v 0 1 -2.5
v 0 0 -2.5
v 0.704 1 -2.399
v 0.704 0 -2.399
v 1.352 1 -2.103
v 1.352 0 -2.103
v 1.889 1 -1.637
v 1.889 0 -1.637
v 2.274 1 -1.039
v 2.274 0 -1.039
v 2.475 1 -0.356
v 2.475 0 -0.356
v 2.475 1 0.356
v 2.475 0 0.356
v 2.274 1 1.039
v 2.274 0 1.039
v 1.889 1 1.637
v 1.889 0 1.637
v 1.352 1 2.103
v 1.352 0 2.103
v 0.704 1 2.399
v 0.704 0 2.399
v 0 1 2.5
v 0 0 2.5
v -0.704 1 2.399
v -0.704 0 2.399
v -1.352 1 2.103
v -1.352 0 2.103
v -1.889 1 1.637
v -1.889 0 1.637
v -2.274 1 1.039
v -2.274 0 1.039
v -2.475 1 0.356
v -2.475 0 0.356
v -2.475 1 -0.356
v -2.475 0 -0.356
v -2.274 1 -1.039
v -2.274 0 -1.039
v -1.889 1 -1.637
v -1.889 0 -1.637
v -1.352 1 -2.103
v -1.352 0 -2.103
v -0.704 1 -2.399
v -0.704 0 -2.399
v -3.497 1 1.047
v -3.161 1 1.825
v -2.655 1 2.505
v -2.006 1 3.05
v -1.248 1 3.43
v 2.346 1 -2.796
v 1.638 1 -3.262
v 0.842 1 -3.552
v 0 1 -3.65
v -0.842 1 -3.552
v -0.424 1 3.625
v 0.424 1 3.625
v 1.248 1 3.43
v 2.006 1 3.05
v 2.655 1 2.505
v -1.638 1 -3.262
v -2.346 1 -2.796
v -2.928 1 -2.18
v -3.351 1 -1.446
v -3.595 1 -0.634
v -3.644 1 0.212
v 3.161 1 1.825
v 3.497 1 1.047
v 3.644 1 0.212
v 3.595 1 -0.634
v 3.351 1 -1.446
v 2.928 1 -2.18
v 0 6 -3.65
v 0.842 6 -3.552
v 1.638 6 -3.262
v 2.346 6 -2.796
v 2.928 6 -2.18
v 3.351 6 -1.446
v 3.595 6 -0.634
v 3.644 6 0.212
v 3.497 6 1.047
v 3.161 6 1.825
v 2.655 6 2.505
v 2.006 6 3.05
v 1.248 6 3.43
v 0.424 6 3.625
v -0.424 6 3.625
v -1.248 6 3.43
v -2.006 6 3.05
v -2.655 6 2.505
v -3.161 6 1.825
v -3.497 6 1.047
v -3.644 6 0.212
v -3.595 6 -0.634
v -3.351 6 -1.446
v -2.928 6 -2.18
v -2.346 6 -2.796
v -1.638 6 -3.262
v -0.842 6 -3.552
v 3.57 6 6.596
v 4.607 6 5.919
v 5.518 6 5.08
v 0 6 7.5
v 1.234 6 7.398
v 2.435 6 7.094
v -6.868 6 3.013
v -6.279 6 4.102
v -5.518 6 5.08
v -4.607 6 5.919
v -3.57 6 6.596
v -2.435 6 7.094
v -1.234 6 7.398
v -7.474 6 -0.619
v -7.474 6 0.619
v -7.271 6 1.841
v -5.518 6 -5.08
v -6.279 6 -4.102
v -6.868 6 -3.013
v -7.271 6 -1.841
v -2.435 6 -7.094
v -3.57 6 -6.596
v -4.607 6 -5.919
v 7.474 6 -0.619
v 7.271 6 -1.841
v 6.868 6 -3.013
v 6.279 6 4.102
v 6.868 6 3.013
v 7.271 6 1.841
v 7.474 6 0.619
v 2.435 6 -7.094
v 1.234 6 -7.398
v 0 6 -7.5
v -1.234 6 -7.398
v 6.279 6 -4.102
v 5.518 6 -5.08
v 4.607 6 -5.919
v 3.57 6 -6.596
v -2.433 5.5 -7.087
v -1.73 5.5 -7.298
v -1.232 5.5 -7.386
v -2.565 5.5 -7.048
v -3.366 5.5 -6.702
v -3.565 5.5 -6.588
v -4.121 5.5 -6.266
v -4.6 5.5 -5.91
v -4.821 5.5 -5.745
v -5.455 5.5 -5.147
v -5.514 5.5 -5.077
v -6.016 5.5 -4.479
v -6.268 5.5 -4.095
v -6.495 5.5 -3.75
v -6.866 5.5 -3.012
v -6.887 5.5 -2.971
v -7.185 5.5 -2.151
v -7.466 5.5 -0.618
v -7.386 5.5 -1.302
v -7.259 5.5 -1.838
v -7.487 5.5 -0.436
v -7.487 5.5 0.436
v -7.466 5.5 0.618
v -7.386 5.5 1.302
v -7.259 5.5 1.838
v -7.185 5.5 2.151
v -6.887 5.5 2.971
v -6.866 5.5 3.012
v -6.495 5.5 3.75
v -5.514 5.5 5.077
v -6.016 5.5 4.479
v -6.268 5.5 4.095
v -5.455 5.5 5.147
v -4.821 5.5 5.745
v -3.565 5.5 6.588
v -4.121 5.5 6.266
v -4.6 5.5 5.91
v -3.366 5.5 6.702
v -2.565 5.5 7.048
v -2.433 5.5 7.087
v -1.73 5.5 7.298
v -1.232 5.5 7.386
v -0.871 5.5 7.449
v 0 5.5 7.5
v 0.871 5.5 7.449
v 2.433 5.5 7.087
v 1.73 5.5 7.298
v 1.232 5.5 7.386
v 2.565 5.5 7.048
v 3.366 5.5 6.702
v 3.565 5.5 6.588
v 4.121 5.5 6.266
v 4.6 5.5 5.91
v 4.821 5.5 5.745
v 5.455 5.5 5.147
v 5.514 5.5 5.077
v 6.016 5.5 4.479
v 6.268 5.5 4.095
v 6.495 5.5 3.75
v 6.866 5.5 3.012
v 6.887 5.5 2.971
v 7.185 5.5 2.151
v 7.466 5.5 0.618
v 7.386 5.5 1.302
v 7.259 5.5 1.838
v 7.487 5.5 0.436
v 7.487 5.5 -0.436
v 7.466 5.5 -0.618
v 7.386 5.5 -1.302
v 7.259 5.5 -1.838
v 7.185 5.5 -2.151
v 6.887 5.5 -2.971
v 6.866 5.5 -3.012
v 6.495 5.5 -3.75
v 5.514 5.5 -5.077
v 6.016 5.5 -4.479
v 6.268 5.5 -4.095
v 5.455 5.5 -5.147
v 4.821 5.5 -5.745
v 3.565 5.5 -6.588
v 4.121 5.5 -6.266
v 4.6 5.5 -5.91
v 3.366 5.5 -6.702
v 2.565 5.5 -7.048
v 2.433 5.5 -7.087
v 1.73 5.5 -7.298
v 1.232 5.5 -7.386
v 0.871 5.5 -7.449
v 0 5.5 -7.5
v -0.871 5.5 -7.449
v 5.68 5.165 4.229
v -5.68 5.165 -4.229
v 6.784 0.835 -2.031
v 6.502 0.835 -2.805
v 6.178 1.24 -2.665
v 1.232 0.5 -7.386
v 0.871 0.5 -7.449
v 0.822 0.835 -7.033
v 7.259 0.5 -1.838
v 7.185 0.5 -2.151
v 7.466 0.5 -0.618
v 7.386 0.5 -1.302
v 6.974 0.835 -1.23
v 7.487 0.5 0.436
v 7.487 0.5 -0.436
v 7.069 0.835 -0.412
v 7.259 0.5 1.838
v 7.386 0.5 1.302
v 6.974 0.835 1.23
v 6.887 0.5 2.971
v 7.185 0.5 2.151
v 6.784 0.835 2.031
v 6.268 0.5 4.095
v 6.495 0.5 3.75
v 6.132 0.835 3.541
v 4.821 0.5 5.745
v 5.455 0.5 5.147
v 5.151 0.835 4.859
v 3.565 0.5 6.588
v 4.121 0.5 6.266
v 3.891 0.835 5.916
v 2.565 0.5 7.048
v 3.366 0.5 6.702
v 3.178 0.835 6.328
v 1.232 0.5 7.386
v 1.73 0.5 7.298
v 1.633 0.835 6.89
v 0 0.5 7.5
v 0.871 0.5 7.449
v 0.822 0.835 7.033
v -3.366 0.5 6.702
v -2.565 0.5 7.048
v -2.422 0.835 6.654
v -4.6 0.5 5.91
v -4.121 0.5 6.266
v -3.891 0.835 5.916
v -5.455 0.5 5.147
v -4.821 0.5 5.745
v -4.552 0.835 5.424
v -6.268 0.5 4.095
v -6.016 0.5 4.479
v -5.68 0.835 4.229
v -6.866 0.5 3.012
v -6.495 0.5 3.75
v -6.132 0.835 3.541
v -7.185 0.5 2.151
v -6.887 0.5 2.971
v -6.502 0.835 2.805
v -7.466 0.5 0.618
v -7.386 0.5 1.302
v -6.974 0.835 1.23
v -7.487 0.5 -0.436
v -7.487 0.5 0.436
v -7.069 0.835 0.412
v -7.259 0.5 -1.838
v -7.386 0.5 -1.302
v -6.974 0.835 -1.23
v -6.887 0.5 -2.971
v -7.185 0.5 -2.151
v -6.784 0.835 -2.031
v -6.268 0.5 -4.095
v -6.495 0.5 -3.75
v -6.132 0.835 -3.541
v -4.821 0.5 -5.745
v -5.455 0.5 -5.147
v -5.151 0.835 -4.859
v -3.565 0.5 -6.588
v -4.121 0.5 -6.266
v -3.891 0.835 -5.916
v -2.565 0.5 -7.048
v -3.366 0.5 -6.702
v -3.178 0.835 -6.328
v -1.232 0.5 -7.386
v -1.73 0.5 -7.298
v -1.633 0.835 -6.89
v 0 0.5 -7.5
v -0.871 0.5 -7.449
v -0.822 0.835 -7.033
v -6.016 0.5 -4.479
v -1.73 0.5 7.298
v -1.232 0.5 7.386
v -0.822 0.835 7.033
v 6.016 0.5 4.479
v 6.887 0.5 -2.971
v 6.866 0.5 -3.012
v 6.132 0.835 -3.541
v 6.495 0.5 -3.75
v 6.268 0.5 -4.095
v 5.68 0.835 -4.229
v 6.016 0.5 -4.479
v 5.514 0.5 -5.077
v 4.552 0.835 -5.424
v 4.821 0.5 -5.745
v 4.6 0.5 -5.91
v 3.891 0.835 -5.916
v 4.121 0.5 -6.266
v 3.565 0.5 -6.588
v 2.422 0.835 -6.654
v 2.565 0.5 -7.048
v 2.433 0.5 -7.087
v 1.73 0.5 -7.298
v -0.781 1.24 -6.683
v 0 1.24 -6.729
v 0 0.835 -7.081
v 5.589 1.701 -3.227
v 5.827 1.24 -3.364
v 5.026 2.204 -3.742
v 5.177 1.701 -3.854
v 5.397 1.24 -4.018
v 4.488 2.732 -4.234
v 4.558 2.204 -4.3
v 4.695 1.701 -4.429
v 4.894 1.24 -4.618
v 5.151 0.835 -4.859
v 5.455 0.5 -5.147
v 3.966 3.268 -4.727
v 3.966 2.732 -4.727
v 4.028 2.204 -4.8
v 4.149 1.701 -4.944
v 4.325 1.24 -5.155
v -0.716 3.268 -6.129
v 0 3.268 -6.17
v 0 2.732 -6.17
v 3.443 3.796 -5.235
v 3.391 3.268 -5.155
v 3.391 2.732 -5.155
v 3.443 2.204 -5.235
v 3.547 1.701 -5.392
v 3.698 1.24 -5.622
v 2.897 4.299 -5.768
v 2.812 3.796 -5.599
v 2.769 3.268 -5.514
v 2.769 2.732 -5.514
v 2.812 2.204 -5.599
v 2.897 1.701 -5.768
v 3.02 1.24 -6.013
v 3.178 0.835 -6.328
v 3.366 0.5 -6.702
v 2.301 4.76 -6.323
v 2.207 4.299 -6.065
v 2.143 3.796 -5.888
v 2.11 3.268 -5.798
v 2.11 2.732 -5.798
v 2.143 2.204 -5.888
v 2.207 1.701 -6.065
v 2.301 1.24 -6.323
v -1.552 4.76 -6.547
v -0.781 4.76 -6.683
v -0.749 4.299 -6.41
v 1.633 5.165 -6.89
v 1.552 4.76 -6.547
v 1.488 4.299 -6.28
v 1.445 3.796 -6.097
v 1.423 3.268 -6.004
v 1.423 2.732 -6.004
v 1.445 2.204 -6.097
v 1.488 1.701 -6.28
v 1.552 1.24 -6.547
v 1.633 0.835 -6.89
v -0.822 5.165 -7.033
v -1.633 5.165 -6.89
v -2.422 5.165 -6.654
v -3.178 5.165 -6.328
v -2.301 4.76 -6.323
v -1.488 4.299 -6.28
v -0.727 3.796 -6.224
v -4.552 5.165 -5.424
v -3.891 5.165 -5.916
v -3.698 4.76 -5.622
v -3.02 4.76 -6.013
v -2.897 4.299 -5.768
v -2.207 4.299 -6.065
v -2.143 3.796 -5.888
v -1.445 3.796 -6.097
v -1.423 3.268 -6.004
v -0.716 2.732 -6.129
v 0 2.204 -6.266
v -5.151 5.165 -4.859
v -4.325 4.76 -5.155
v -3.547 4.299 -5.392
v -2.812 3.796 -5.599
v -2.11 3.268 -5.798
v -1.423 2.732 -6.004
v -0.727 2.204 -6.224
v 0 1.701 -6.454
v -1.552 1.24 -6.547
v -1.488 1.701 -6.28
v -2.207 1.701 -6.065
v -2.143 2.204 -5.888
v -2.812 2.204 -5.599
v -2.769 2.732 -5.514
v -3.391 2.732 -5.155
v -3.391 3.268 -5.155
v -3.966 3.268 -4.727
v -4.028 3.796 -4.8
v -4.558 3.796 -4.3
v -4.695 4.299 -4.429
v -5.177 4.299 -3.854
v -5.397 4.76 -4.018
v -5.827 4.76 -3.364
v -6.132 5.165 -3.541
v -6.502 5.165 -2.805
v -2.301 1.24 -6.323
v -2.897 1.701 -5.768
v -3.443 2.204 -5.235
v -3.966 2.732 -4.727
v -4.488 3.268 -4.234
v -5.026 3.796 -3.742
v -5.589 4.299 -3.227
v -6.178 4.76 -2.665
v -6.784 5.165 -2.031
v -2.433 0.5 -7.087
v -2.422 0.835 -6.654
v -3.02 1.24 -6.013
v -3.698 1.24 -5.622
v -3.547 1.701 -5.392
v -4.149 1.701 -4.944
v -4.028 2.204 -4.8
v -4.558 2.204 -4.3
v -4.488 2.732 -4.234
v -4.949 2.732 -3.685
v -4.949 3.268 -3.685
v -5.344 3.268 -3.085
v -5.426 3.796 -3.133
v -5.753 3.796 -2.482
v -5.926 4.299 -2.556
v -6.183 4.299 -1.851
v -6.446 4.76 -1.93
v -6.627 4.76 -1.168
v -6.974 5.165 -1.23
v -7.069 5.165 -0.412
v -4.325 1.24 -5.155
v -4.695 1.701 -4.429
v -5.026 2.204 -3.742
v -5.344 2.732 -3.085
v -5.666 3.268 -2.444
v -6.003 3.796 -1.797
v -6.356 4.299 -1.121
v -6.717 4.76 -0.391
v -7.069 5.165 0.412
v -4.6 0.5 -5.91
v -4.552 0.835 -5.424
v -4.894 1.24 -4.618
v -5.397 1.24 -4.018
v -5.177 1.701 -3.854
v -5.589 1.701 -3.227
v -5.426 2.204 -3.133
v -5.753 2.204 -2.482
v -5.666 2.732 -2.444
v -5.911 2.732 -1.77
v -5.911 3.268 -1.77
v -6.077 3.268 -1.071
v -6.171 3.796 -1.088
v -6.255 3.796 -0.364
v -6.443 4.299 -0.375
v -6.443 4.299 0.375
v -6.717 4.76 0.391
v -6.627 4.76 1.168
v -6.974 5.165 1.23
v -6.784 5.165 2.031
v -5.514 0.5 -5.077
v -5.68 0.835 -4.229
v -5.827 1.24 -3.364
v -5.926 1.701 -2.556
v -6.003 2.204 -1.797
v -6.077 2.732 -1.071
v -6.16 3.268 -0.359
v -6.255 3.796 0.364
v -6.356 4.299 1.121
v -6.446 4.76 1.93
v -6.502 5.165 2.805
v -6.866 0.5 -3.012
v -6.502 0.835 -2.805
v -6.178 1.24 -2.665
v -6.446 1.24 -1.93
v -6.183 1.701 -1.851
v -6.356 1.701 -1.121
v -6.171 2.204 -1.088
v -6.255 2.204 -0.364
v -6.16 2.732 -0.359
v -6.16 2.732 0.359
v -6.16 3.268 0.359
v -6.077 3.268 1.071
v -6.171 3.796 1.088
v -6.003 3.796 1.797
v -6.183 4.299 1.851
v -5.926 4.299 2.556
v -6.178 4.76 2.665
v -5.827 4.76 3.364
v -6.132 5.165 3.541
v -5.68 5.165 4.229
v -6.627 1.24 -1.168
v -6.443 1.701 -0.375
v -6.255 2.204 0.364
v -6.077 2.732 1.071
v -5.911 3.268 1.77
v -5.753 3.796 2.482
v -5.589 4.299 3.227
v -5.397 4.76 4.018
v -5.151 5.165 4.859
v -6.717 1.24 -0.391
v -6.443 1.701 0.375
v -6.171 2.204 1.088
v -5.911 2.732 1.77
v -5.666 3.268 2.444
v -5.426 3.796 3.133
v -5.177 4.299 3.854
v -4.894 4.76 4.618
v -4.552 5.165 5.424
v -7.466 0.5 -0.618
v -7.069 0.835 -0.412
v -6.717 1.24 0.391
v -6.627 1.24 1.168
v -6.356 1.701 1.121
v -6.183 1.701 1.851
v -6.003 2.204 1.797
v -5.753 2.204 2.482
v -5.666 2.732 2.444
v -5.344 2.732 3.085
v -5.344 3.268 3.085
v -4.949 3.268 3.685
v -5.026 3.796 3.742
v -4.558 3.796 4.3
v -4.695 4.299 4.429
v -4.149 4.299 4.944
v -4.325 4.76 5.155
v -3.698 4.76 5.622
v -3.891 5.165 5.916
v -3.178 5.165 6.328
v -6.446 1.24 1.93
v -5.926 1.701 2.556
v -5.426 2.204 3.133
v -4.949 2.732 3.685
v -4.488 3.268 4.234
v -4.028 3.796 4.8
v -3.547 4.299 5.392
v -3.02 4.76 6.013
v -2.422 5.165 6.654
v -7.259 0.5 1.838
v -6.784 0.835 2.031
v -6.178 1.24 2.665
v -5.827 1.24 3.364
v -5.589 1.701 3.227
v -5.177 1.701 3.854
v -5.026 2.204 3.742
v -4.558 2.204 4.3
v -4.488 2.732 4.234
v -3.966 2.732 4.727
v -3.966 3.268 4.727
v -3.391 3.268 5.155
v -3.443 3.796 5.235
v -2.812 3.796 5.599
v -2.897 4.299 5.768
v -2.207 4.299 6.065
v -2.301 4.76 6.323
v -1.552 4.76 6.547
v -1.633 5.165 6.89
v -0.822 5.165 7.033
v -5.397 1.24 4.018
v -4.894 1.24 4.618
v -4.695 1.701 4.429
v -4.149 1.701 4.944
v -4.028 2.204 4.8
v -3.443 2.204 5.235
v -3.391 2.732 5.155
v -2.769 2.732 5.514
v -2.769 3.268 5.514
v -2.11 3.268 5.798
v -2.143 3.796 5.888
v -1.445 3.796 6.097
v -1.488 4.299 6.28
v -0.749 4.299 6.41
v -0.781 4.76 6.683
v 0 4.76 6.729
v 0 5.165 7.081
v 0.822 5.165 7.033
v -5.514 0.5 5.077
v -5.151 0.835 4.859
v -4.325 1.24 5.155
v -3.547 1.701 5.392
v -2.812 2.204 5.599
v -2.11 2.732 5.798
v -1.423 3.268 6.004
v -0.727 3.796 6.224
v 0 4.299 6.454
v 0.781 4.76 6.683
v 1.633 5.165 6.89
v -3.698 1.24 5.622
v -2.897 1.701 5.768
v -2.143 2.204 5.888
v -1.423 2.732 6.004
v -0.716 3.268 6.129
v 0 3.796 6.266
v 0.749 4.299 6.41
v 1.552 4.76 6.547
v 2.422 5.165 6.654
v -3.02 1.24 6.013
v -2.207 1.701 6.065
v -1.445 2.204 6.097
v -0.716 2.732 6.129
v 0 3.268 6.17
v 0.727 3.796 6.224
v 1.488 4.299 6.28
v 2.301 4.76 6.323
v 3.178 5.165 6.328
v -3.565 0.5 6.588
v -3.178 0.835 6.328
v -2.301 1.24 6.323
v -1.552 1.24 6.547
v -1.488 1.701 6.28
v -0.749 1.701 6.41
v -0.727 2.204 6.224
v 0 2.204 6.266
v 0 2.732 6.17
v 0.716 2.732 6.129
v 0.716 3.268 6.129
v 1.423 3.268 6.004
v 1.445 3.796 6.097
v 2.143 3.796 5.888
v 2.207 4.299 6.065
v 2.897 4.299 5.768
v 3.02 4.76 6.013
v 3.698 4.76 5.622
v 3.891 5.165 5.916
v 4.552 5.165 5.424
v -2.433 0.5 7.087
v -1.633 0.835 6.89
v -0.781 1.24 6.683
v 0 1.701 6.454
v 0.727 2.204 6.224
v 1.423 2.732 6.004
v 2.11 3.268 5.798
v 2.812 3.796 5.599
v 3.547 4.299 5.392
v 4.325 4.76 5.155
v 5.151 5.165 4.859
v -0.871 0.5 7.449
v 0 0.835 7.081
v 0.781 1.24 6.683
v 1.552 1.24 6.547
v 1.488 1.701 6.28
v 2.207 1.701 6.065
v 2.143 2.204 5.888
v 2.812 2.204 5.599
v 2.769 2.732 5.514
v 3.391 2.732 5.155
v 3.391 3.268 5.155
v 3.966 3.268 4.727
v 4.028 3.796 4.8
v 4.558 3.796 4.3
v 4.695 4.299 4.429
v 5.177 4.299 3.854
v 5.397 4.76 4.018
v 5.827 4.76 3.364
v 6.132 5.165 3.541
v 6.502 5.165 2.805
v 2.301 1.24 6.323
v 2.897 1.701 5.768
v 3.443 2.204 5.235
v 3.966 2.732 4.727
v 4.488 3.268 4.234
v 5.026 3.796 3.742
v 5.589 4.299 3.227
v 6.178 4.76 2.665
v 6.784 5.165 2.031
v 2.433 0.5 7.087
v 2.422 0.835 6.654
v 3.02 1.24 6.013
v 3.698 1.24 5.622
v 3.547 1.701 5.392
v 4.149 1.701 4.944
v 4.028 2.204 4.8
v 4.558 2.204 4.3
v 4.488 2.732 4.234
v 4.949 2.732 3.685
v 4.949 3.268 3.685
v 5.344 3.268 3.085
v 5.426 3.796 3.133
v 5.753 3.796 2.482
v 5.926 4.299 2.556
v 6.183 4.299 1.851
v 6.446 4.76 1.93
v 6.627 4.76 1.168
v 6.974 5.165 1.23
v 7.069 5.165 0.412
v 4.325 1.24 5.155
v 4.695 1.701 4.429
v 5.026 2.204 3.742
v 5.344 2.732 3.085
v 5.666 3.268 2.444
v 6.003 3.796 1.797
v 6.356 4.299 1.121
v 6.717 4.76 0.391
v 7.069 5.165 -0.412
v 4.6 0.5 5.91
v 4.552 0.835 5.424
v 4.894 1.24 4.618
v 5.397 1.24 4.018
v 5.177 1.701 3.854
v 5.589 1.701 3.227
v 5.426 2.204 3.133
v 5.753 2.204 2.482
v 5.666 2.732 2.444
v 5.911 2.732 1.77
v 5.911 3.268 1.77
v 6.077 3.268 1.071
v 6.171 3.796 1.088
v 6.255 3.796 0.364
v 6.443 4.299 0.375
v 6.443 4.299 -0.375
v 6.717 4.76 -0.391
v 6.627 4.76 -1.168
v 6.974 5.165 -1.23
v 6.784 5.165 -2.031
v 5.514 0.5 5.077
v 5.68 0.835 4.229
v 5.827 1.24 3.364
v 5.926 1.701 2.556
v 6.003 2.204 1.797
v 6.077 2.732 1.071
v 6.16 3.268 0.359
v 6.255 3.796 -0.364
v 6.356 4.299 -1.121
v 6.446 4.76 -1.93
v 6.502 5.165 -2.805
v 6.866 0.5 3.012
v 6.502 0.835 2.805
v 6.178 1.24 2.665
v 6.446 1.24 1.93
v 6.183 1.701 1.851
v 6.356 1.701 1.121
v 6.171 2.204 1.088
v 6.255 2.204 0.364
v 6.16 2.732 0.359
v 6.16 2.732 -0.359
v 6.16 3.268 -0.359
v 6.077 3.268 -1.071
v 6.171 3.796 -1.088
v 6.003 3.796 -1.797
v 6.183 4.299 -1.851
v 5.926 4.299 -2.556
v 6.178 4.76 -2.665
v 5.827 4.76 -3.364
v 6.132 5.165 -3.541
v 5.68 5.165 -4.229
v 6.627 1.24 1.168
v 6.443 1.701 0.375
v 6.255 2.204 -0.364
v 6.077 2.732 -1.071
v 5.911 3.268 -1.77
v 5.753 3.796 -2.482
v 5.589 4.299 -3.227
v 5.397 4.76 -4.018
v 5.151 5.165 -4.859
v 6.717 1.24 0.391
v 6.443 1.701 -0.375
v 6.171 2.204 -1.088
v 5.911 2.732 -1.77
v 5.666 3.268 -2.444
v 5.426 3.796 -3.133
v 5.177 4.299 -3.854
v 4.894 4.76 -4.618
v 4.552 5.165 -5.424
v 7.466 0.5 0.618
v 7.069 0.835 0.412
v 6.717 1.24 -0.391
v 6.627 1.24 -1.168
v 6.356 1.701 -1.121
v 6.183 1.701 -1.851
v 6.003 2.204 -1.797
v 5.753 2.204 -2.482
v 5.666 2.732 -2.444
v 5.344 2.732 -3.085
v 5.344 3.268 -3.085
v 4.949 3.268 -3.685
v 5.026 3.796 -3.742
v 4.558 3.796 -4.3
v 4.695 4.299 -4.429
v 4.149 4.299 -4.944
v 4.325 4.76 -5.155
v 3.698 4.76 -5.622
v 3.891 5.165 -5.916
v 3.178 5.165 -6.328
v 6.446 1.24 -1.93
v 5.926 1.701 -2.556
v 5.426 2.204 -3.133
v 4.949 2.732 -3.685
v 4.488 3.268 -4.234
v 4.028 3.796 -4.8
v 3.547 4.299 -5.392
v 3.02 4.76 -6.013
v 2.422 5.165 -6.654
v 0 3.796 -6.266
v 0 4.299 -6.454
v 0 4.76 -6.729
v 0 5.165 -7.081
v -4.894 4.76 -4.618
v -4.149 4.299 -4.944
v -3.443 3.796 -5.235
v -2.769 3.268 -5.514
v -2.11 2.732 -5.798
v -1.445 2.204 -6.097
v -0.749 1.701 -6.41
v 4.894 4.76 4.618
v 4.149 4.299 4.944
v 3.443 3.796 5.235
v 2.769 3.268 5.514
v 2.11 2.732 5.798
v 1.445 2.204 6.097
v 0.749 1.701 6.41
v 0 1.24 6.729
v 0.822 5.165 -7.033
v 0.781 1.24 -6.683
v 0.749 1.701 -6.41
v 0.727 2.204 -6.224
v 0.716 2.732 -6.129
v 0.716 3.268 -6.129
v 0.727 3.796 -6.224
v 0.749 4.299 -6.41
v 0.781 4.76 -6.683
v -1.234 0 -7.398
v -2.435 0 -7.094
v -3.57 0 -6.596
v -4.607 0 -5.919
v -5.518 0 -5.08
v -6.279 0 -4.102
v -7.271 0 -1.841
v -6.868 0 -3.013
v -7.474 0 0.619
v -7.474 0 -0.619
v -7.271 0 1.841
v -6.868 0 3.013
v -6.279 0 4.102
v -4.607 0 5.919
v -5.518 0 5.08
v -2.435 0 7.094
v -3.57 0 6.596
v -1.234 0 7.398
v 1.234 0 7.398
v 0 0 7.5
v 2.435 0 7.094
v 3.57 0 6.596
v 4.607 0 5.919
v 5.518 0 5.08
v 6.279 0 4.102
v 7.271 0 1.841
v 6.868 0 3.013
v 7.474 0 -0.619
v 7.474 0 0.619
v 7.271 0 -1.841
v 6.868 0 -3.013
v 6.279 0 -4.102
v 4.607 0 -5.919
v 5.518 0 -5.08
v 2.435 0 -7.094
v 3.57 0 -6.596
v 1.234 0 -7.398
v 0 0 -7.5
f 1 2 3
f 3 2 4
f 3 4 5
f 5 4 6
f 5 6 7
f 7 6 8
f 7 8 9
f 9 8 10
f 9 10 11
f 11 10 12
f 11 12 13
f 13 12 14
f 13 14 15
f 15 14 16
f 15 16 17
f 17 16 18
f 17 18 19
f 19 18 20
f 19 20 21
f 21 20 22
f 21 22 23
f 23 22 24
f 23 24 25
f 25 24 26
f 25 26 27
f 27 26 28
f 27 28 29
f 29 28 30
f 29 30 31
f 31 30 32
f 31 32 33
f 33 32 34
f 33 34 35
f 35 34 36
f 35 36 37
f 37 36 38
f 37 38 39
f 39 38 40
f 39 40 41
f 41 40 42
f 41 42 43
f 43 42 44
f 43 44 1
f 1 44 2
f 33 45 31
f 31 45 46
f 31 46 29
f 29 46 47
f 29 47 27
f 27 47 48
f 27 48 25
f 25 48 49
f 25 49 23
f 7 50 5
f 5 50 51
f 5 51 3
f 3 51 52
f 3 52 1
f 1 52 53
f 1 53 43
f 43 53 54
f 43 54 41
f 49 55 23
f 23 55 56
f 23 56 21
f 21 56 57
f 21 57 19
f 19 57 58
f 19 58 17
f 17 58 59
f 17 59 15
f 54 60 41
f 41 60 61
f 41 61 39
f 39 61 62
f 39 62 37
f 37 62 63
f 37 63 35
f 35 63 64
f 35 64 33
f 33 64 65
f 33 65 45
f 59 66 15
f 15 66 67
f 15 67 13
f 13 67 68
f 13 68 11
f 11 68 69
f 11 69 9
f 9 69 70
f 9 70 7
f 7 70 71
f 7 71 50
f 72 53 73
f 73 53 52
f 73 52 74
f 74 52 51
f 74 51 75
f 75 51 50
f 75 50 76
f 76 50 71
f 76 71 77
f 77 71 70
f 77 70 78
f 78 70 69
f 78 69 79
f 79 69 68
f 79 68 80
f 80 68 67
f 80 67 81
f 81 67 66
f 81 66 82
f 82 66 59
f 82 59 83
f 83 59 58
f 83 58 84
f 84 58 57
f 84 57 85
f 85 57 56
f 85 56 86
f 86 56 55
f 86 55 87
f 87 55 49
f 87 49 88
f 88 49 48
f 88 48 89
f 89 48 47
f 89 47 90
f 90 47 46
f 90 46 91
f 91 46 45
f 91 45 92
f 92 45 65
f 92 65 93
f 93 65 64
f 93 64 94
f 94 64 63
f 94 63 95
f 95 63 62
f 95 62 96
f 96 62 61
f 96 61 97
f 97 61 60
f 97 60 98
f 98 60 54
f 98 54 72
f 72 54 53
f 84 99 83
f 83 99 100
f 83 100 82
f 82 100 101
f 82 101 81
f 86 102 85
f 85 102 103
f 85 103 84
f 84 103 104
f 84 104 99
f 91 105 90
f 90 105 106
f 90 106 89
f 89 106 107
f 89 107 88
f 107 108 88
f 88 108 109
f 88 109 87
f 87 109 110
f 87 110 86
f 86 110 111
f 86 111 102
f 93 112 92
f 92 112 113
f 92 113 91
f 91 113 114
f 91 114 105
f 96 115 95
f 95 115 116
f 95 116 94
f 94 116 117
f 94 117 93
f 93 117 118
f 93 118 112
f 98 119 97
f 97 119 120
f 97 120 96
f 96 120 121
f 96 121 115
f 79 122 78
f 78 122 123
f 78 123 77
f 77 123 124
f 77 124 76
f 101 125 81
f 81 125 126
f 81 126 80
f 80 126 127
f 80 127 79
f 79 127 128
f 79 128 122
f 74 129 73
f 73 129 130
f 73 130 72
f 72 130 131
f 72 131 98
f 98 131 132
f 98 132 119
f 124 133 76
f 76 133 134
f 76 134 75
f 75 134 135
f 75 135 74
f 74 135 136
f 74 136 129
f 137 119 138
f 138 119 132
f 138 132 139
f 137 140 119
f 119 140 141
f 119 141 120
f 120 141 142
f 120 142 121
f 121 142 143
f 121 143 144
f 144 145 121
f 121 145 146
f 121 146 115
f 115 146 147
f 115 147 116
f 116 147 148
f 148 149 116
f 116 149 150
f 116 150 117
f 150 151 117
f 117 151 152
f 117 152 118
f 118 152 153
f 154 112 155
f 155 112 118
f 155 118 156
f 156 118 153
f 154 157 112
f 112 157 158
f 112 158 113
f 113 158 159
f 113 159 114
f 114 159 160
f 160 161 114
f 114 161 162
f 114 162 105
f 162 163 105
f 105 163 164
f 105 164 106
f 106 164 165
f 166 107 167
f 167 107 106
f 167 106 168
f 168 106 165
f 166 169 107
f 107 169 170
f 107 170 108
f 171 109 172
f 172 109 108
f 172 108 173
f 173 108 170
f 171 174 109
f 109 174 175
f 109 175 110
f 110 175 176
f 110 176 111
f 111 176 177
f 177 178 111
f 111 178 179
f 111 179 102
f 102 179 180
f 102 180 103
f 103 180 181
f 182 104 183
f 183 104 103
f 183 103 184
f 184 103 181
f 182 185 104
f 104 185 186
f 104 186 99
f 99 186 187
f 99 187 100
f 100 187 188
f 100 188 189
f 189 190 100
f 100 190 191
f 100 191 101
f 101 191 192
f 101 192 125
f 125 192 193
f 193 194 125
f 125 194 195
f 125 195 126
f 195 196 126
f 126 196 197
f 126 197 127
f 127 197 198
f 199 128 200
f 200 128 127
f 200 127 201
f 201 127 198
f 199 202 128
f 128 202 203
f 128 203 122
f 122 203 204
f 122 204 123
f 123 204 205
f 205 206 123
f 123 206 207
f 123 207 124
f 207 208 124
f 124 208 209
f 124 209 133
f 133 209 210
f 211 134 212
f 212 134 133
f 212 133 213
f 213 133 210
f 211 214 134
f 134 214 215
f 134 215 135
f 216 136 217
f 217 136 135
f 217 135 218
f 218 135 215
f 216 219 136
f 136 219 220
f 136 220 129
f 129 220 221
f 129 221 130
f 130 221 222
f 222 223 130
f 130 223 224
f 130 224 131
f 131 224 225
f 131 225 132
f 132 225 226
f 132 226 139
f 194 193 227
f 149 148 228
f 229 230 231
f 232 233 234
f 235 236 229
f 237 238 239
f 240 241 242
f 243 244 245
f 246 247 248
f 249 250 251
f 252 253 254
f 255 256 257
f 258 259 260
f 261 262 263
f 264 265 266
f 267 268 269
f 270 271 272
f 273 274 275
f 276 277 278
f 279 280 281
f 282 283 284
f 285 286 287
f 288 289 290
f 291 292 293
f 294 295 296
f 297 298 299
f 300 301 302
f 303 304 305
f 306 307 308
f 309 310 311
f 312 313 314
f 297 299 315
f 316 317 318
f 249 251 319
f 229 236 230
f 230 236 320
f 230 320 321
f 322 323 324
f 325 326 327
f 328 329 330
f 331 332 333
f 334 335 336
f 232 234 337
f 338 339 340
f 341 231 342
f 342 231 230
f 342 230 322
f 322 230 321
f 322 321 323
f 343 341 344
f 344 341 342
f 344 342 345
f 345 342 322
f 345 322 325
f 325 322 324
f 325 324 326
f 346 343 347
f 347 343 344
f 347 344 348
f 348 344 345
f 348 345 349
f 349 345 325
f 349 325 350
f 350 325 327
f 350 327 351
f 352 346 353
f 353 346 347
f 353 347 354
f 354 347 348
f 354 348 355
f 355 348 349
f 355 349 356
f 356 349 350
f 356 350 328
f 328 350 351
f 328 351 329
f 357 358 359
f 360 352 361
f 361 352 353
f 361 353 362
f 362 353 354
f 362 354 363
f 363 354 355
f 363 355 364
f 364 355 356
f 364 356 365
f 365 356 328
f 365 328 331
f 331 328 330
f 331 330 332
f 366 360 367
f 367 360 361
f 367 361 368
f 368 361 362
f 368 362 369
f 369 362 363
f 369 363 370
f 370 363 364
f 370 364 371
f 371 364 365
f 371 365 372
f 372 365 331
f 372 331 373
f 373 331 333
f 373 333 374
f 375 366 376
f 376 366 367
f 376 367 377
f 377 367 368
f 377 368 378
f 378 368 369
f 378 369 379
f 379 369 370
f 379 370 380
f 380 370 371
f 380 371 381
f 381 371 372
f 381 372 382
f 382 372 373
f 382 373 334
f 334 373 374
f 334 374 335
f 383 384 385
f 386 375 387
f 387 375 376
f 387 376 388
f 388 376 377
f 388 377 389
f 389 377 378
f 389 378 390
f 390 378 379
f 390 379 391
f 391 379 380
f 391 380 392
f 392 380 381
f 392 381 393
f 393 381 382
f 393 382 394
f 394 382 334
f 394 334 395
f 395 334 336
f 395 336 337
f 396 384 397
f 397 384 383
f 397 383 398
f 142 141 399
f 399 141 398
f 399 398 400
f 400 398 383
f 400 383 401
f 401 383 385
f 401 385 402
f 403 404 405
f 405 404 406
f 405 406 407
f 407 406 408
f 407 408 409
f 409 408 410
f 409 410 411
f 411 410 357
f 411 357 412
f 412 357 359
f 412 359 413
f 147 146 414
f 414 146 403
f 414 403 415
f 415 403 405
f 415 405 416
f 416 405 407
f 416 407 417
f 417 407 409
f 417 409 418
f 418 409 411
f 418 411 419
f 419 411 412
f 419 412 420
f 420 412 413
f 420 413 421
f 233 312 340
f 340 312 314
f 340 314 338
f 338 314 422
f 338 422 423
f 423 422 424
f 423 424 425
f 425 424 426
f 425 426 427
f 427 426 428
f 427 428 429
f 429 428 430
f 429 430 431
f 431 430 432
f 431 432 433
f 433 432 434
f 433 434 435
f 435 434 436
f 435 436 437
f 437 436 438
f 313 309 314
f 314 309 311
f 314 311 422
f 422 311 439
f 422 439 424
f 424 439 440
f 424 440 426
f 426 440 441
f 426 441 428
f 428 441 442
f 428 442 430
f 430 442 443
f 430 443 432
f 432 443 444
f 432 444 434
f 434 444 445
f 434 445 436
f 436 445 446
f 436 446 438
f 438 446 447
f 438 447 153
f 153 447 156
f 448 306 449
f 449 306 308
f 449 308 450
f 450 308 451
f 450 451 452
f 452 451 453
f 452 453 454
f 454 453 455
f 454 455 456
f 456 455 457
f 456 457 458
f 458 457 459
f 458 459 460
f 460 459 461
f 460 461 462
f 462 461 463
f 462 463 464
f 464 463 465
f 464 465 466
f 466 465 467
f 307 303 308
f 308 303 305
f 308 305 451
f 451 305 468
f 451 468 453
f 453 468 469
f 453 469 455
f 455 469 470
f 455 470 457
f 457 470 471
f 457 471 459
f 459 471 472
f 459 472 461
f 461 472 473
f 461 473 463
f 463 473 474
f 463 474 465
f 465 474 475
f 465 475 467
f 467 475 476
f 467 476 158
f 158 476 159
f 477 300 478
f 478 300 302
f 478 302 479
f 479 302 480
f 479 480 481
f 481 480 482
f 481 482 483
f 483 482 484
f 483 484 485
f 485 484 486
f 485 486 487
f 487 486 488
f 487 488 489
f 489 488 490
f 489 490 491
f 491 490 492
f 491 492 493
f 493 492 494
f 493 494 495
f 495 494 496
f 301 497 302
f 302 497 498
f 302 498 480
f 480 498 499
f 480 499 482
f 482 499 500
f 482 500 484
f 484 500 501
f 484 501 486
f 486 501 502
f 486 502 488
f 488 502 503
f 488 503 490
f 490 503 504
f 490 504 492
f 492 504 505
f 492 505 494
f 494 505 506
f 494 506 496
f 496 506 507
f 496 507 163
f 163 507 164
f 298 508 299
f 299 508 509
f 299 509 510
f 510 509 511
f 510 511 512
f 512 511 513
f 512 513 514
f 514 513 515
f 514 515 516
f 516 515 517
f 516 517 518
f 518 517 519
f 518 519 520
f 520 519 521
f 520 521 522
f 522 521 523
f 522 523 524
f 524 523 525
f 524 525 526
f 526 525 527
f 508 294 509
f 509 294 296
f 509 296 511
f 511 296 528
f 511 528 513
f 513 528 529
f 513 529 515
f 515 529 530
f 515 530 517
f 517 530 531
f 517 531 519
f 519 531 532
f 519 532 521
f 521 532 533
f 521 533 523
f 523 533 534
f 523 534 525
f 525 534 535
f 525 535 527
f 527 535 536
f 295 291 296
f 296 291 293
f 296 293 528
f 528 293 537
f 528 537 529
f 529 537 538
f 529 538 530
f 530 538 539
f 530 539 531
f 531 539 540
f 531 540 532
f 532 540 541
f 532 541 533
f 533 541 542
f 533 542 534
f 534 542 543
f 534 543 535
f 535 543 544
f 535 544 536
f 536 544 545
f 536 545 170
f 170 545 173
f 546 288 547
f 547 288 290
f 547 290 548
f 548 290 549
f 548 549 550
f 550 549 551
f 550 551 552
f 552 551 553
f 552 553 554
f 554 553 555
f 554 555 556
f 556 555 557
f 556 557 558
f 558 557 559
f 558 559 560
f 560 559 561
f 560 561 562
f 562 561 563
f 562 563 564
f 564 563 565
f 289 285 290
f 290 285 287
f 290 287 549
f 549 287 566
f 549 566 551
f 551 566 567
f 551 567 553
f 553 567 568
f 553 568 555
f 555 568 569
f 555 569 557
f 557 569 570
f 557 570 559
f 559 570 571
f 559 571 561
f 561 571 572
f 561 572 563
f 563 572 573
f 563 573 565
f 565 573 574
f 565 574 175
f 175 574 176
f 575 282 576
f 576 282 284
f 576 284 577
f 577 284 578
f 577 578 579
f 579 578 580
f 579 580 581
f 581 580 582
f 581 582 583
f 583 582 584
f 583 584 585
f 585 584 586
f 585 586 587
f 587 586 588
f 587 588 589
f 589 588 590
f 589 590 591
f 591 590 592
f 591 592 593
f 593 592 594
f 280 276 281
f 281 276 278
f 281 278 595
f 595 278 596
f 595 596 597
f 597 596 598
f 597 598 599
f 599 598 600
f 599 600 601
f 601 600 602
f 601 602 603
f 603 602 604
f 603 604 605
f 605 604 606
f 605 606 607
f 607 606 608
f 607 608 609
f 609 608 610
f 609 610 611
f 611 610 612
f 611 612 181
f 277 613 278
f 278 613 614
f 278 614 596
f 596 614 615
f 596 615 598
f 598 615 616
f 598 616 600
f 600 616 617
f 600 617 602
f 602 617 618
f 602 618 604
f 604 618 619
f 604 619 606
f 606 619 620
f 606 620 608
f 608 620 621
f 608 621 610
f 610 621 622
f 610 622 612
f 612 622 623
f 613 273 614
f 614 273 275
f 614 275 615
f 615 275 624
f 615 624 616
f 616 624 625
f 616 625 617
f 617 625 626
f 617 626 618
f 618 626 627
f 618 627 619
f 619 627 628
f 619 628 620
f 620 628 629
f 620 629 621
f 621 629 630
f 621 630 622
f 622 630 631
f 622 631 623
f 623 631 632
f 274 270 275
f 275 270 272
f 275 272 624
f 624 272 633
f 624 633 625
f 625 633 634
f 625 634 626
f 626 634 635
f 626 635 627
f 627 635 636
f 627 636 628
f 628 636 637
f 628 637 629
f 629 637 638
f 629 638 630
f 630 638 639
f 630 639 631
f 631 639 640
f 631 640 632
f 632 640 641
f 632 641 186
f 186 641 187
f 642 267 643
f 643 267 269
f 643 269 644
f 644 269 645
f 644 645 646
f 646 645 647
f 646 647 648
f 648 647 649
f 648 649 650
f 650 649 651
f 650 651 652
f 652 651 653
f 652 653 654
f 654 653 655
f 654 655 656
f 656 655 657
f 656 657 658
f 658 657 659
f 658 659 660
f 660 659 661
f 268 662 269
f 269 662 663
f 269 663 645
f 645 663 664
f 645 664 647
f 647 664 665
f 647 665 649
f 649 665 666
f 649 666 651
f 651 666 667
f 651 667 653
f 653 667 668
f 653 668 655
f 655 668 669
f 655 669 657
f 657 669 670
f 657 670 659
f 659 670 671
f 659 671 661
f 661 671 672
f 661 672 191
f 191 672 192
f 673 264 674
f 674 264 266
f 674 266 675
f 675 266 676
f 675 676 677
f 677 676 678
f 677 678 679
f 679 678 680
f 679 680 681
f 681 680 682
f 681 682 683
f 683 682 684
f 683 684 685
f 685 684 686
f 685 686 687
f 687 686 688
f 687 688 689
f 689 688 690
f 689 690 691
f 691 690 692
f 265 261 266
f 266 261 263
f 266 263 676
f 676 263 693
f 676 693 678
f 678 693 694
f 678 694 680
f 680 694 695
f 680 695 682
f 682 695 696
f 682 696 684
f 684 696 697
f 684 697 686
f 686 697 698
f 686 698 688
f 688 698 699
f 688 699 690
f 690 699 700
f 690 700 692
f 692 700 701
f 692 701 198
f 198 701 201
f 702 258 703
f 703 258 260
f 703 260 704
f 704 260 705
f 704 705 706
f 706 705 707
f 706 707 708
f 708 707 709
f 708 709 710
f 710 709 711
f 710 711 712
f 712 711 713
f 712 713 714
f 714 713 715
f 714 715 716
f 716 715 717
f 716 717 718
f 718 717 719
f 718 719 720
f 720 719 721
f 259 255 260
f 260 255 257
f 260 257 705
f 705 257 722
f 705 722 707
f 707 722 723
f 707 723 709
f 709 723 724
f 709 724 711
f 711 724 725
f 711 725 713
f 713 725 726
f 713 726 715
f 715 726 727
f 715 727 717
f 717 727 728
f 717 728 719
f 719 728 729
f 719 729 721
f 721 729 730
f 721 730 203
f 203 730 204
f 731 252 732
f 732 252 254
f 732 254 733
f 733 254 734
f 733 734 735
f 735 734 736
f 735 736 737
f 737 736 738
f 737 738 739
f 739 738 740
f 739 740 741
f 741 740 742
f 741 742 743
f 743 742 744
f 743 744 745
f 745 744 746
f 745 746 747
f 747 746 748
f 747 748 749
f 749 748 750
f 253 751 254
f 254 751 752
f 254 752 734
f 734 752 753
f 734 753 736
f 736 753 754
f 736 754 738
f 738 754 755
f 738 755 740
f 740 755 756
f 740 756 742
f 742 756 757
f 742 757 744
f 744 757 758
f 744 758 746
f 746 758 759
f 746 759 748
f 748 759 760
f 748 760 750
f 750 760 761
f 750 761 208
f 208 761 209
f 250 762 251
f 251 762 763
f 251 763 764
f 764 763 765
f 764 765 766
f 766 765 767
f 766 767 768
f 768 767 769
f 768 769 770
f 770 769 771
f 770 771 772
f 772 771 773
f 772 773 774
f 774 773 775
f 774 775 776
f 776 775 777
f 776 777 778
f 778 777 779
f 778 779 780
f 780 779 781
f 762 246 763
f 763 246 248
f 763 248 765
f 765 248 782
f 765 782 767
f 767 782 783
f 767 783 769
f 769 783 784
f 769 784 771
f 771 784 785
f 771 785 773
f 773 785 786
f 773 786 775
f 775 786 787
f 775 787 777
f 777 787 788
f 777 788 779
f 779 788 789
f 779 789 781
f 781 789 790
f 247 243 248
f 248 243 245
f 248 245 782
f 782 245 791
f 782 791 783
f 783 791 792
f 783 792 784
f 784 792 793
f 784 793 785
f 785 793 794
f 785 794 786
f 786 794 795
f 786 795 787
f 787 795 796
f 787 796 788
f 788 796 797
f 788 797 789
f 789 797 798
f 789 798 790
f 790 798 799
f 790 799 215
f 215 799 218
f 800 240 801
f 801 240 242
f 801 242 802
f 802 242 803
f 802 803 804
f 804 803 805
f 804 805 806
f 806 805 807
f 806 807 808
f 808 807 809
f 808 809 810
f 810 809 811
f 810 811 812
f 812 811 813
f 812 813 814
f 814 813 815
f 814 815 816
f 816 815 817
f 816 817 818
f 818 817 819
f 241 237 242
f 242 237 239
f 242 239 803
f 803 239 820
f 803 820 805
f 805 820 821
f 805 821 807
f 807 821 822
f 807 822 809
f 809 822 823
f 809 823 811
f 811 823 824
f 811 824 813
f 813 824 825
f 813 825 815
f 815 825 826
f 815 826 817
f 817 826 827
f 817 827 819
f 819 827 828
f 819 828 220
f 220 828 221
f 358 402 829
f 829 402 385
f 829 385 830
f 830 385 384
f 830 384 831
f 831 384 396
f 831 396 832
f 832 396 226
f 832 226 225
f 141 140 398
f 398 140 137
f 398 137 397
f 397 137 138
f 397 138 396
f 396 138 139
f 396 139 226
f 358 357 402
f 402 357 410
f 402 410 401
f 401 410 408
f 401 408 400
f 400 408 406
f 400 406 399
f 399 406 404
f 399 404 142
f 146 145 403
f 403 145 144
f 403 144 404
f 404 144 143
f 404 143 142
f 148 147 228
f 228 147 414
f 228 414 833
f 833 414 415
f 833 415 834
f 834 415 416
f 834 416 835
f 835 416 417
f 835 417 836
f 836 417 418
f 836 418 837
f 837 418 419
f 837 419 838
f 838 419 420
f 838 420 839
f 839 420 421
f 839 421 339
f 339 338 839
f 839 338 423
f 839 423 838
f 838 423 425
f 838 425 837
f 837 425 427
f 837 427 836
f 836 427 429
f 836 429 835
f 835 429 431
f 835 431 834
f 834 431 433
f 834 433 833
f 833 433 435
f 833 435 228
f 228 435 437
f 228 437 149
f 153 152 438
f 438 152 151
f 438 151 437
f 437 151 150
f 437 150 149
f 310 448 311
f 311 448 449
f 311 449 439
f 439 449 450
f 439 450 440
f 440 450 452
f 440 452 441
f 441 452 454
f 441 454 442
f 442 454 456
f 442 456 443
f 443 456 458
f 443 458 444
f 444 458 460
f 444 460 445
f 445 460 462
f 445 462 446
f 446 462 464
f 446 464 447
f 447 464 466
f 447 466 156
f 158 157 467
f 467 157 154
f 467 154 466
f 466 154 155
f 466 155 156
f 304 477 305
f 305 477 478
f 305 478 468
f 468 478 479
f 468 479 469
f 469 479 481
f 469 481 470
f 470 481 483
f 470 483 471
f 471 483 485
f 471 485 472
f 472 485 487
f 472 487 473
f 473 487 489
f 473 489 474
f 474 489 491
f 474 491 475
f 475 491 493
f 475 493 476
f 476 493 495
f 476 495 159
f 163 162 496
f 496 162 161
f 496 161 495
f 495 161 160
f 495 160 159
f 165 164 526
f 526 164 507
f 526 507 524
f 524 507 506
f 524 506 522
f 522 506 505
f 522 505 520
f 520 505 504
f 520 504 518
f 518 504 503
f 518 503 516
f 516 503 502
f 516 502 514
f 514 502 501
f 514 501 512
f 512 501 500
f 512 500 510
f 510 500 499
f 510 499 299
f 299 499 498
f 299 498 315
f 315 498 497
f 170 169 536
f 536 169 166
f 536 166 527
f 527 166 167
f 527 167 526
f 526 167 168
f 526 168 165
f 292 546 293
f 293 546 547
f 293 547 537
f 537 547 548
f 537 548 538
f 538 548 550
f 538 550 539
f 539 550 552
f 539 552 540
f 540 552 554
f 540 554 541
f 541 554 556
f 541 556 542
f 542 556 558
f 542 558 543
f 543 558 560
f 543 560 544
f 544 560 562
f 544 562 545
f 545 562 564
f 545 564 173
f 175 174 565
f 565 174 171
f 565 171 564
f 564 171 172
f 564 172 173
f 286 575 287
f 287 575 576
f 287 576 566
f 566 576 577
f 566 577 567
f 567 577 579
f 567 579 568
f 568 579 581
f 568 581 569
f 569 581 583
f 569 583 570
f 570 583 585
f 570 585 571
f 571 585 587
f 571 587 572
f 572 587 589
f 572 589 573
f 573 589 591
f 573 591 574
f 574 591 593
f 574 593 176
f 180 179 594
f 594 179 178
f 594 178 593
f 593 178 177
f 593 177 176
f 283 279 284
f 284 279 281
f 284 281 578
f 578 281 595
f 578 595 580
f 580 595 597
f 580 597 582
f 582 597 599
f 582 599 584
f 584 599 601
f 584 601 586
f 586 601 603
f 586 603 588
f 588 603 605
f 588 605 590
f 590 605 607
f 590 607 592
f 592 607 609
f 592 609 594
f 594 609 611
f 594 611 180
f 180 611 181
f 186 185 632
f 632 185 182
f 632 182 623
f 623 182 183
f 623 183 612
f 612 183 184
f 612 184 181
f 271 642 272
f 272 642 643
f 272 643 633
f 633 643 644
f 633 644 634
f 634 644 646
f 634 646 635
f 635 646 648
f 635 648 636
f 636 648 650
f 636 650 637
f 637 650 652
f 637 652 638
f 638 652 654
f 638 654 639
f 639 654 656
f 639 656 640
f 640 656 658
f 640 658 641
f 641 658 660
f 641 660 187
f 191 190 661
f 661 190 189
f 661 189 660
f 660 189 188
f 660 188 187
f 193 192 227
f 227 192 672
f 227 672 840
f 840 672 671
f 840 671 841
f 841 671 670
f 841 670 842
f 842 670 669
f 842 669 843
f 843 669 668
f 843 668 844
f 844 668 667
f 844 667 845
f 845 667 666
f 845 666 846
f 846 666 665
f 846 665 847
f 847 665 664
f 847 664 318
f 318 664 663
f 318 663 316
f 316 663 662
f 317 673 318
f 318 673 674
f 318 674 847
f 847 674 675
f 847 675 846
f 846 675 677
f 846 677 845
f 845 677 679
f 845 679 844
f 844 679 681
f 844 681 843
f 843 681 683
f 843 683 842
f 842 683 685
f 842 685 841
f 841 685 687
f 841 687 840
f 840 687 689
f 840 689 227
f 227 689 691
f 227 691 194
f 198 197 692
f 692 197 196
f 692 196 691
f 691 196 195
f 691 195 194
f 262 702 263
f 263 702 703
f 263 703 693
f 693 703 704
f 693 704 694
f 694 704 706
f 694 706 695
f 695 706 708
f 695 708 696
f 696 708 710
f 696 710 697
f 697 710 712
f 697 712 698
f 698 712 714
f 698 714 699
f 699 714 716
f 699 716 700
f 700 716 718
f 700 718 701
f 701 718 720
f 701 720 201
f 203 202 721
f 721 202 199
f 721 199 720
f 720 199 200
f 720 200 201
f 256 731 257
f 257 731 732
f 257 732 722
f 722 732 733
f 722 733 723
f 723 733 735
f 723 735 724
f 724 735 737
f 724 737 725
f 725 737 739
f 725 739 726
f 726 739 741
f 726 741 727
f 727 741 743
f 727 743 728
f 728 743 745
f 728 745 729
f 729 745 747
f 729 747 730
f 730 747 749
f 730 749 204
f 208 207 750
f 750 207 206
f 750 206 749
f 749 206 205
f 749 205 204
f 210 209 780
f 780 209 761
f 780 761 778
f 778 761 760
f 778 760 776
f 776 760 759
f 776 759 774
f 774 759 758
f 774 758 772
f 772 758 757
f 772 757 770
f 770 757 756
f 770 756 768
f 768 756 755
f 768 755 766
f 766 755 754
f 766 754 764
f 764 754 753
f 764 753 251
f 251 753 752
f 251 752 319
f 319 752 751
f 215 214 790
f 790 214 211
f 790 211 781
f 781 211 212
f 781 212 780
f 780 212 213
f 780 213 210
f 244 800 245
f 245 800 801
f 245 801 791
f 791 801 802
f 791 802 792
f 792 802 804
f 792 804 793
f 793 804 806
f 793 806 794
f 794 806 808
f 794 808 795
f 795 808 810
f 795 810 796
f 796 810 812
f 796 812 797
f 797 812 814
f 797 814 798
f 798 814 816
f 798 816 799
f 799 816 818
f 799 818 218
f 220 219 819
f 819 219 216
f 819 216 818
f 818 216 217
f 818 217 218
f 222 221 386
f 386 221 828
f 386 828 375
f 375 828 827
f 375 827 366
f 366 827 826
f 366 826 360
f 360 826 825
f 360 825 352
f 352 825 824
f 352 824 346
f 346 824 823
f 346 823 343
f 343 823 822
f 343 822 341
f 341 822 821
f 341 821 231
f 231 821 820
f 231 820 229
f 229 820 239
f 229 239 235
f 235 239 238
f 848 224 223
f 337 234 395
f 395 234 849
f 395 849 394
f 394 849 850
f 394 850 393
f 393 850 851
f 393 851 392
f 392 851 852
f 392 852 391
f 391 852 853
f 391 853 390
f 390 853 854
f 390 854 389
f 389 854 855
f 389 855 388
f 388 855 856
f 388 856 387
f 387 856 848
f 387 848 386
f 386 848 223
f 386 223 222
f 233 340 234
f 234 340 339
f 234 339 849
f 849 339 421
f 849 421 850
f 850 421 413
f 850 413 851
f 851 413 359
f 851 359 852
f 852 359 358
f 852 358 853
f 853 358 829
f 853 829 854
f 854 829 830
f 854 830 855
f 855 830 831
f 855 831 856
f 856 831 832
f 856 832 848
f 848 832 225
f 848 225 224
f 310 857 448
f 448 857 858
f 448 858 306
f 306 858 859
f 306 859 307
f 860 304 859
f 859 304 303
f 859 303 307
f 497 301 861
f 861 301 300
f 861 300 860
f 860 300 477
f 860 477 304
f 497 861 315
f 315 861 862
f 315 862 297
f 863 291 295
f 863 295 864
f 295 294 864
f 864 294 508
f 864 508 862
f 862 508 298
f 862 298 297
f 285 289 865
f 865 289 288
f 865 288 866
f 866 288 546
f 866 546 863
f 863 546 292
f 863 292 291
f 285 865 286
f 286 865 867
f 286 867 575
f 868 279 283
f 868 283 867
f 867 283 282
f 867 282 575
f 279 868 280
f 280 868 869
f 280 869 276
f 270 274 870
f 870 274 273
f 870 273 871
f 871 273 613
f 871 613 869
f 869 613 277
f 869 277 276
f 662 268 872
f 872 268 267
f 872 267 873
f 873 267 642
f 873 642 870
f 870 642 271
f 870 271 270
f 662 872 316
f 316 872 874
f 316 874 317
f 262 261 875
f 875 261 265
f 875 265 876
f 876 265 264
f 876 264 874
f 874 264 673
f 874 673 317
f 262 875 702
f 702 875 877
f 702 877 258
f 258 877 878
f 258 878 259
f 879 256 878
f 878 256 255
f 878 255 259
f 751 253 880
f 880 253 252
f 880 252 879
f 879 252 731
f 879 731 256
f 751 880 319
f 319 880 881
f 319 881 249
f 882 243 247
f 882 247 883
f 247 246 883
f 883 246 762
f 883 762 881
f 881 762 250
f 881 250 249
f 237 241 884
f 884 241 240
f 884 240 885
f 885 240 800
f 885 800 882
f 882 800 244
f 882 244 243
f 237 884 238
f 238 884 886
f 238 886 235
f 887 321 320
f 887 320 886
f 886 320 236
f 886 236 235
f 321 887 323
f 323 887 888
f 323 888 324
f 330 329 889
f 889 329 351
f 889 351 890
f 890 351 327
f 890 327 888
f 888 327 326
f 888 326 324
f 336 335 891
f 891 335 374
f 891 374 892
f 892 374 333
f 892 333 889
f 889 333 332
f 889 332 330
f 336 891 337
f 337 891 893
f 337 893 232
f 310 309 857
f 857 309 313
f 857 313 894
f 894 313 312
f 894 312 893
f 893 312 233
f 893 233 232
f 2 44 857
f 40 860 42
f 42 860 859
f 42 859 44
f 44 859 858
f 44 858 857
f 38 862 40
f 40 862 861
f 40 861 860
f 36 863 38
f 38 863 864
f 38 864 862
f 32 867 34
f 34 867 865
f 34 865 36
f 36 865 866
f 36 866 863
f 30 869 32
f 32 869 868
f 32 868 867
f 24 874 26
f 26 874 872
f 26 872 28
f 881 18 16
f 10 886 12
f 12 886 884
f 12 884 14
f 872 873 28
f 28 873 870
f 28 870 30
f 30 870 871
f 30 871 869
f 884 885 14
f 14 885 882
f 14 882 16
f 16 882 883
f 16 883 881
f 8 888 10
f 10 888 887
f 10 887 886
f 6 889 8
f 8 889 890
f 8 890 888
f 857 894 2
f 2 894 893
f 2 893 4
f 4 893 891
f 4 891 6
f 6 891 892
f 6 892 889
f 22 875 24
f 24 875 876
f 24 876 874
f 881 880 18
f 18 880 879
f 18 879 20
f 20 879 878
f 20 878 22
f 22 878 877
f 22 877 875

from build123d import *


with BuildPart() as part:
    # Sketch1 → Revolve1 (revolve)
    with BuildSketch(Plane.XY, mode=Mode.PRIVATE) as revolve1_sk:
        with BuildLine():
            Line((-2.5, 0), (-7.5, 0))
            Line((-7.5, 0), (-7.5, 0.5))
            ThreePointArc((-7.5, 0.5), (-6.158312395, 3), (-7.5, 5.5))
            Line((-7.5, 5.5), (-7.5, 6))
            Line((-7.5, 6), (-3.65, 6))
            Line((-3.65, 6), (-3.65, 1))
            Line((-3.65, 1), (-2.5, 1))
            Line((-2.5, 1), (-2.5, 0))
        make_face()
    revolve(revolve1_sk.sketch.rotate(Axis((0, -6.629530881, 0), (0, 1, 0)), 270), axis=Axis((0, -6.629530881, 0), (0, 1, 0)))


solid = part.part
